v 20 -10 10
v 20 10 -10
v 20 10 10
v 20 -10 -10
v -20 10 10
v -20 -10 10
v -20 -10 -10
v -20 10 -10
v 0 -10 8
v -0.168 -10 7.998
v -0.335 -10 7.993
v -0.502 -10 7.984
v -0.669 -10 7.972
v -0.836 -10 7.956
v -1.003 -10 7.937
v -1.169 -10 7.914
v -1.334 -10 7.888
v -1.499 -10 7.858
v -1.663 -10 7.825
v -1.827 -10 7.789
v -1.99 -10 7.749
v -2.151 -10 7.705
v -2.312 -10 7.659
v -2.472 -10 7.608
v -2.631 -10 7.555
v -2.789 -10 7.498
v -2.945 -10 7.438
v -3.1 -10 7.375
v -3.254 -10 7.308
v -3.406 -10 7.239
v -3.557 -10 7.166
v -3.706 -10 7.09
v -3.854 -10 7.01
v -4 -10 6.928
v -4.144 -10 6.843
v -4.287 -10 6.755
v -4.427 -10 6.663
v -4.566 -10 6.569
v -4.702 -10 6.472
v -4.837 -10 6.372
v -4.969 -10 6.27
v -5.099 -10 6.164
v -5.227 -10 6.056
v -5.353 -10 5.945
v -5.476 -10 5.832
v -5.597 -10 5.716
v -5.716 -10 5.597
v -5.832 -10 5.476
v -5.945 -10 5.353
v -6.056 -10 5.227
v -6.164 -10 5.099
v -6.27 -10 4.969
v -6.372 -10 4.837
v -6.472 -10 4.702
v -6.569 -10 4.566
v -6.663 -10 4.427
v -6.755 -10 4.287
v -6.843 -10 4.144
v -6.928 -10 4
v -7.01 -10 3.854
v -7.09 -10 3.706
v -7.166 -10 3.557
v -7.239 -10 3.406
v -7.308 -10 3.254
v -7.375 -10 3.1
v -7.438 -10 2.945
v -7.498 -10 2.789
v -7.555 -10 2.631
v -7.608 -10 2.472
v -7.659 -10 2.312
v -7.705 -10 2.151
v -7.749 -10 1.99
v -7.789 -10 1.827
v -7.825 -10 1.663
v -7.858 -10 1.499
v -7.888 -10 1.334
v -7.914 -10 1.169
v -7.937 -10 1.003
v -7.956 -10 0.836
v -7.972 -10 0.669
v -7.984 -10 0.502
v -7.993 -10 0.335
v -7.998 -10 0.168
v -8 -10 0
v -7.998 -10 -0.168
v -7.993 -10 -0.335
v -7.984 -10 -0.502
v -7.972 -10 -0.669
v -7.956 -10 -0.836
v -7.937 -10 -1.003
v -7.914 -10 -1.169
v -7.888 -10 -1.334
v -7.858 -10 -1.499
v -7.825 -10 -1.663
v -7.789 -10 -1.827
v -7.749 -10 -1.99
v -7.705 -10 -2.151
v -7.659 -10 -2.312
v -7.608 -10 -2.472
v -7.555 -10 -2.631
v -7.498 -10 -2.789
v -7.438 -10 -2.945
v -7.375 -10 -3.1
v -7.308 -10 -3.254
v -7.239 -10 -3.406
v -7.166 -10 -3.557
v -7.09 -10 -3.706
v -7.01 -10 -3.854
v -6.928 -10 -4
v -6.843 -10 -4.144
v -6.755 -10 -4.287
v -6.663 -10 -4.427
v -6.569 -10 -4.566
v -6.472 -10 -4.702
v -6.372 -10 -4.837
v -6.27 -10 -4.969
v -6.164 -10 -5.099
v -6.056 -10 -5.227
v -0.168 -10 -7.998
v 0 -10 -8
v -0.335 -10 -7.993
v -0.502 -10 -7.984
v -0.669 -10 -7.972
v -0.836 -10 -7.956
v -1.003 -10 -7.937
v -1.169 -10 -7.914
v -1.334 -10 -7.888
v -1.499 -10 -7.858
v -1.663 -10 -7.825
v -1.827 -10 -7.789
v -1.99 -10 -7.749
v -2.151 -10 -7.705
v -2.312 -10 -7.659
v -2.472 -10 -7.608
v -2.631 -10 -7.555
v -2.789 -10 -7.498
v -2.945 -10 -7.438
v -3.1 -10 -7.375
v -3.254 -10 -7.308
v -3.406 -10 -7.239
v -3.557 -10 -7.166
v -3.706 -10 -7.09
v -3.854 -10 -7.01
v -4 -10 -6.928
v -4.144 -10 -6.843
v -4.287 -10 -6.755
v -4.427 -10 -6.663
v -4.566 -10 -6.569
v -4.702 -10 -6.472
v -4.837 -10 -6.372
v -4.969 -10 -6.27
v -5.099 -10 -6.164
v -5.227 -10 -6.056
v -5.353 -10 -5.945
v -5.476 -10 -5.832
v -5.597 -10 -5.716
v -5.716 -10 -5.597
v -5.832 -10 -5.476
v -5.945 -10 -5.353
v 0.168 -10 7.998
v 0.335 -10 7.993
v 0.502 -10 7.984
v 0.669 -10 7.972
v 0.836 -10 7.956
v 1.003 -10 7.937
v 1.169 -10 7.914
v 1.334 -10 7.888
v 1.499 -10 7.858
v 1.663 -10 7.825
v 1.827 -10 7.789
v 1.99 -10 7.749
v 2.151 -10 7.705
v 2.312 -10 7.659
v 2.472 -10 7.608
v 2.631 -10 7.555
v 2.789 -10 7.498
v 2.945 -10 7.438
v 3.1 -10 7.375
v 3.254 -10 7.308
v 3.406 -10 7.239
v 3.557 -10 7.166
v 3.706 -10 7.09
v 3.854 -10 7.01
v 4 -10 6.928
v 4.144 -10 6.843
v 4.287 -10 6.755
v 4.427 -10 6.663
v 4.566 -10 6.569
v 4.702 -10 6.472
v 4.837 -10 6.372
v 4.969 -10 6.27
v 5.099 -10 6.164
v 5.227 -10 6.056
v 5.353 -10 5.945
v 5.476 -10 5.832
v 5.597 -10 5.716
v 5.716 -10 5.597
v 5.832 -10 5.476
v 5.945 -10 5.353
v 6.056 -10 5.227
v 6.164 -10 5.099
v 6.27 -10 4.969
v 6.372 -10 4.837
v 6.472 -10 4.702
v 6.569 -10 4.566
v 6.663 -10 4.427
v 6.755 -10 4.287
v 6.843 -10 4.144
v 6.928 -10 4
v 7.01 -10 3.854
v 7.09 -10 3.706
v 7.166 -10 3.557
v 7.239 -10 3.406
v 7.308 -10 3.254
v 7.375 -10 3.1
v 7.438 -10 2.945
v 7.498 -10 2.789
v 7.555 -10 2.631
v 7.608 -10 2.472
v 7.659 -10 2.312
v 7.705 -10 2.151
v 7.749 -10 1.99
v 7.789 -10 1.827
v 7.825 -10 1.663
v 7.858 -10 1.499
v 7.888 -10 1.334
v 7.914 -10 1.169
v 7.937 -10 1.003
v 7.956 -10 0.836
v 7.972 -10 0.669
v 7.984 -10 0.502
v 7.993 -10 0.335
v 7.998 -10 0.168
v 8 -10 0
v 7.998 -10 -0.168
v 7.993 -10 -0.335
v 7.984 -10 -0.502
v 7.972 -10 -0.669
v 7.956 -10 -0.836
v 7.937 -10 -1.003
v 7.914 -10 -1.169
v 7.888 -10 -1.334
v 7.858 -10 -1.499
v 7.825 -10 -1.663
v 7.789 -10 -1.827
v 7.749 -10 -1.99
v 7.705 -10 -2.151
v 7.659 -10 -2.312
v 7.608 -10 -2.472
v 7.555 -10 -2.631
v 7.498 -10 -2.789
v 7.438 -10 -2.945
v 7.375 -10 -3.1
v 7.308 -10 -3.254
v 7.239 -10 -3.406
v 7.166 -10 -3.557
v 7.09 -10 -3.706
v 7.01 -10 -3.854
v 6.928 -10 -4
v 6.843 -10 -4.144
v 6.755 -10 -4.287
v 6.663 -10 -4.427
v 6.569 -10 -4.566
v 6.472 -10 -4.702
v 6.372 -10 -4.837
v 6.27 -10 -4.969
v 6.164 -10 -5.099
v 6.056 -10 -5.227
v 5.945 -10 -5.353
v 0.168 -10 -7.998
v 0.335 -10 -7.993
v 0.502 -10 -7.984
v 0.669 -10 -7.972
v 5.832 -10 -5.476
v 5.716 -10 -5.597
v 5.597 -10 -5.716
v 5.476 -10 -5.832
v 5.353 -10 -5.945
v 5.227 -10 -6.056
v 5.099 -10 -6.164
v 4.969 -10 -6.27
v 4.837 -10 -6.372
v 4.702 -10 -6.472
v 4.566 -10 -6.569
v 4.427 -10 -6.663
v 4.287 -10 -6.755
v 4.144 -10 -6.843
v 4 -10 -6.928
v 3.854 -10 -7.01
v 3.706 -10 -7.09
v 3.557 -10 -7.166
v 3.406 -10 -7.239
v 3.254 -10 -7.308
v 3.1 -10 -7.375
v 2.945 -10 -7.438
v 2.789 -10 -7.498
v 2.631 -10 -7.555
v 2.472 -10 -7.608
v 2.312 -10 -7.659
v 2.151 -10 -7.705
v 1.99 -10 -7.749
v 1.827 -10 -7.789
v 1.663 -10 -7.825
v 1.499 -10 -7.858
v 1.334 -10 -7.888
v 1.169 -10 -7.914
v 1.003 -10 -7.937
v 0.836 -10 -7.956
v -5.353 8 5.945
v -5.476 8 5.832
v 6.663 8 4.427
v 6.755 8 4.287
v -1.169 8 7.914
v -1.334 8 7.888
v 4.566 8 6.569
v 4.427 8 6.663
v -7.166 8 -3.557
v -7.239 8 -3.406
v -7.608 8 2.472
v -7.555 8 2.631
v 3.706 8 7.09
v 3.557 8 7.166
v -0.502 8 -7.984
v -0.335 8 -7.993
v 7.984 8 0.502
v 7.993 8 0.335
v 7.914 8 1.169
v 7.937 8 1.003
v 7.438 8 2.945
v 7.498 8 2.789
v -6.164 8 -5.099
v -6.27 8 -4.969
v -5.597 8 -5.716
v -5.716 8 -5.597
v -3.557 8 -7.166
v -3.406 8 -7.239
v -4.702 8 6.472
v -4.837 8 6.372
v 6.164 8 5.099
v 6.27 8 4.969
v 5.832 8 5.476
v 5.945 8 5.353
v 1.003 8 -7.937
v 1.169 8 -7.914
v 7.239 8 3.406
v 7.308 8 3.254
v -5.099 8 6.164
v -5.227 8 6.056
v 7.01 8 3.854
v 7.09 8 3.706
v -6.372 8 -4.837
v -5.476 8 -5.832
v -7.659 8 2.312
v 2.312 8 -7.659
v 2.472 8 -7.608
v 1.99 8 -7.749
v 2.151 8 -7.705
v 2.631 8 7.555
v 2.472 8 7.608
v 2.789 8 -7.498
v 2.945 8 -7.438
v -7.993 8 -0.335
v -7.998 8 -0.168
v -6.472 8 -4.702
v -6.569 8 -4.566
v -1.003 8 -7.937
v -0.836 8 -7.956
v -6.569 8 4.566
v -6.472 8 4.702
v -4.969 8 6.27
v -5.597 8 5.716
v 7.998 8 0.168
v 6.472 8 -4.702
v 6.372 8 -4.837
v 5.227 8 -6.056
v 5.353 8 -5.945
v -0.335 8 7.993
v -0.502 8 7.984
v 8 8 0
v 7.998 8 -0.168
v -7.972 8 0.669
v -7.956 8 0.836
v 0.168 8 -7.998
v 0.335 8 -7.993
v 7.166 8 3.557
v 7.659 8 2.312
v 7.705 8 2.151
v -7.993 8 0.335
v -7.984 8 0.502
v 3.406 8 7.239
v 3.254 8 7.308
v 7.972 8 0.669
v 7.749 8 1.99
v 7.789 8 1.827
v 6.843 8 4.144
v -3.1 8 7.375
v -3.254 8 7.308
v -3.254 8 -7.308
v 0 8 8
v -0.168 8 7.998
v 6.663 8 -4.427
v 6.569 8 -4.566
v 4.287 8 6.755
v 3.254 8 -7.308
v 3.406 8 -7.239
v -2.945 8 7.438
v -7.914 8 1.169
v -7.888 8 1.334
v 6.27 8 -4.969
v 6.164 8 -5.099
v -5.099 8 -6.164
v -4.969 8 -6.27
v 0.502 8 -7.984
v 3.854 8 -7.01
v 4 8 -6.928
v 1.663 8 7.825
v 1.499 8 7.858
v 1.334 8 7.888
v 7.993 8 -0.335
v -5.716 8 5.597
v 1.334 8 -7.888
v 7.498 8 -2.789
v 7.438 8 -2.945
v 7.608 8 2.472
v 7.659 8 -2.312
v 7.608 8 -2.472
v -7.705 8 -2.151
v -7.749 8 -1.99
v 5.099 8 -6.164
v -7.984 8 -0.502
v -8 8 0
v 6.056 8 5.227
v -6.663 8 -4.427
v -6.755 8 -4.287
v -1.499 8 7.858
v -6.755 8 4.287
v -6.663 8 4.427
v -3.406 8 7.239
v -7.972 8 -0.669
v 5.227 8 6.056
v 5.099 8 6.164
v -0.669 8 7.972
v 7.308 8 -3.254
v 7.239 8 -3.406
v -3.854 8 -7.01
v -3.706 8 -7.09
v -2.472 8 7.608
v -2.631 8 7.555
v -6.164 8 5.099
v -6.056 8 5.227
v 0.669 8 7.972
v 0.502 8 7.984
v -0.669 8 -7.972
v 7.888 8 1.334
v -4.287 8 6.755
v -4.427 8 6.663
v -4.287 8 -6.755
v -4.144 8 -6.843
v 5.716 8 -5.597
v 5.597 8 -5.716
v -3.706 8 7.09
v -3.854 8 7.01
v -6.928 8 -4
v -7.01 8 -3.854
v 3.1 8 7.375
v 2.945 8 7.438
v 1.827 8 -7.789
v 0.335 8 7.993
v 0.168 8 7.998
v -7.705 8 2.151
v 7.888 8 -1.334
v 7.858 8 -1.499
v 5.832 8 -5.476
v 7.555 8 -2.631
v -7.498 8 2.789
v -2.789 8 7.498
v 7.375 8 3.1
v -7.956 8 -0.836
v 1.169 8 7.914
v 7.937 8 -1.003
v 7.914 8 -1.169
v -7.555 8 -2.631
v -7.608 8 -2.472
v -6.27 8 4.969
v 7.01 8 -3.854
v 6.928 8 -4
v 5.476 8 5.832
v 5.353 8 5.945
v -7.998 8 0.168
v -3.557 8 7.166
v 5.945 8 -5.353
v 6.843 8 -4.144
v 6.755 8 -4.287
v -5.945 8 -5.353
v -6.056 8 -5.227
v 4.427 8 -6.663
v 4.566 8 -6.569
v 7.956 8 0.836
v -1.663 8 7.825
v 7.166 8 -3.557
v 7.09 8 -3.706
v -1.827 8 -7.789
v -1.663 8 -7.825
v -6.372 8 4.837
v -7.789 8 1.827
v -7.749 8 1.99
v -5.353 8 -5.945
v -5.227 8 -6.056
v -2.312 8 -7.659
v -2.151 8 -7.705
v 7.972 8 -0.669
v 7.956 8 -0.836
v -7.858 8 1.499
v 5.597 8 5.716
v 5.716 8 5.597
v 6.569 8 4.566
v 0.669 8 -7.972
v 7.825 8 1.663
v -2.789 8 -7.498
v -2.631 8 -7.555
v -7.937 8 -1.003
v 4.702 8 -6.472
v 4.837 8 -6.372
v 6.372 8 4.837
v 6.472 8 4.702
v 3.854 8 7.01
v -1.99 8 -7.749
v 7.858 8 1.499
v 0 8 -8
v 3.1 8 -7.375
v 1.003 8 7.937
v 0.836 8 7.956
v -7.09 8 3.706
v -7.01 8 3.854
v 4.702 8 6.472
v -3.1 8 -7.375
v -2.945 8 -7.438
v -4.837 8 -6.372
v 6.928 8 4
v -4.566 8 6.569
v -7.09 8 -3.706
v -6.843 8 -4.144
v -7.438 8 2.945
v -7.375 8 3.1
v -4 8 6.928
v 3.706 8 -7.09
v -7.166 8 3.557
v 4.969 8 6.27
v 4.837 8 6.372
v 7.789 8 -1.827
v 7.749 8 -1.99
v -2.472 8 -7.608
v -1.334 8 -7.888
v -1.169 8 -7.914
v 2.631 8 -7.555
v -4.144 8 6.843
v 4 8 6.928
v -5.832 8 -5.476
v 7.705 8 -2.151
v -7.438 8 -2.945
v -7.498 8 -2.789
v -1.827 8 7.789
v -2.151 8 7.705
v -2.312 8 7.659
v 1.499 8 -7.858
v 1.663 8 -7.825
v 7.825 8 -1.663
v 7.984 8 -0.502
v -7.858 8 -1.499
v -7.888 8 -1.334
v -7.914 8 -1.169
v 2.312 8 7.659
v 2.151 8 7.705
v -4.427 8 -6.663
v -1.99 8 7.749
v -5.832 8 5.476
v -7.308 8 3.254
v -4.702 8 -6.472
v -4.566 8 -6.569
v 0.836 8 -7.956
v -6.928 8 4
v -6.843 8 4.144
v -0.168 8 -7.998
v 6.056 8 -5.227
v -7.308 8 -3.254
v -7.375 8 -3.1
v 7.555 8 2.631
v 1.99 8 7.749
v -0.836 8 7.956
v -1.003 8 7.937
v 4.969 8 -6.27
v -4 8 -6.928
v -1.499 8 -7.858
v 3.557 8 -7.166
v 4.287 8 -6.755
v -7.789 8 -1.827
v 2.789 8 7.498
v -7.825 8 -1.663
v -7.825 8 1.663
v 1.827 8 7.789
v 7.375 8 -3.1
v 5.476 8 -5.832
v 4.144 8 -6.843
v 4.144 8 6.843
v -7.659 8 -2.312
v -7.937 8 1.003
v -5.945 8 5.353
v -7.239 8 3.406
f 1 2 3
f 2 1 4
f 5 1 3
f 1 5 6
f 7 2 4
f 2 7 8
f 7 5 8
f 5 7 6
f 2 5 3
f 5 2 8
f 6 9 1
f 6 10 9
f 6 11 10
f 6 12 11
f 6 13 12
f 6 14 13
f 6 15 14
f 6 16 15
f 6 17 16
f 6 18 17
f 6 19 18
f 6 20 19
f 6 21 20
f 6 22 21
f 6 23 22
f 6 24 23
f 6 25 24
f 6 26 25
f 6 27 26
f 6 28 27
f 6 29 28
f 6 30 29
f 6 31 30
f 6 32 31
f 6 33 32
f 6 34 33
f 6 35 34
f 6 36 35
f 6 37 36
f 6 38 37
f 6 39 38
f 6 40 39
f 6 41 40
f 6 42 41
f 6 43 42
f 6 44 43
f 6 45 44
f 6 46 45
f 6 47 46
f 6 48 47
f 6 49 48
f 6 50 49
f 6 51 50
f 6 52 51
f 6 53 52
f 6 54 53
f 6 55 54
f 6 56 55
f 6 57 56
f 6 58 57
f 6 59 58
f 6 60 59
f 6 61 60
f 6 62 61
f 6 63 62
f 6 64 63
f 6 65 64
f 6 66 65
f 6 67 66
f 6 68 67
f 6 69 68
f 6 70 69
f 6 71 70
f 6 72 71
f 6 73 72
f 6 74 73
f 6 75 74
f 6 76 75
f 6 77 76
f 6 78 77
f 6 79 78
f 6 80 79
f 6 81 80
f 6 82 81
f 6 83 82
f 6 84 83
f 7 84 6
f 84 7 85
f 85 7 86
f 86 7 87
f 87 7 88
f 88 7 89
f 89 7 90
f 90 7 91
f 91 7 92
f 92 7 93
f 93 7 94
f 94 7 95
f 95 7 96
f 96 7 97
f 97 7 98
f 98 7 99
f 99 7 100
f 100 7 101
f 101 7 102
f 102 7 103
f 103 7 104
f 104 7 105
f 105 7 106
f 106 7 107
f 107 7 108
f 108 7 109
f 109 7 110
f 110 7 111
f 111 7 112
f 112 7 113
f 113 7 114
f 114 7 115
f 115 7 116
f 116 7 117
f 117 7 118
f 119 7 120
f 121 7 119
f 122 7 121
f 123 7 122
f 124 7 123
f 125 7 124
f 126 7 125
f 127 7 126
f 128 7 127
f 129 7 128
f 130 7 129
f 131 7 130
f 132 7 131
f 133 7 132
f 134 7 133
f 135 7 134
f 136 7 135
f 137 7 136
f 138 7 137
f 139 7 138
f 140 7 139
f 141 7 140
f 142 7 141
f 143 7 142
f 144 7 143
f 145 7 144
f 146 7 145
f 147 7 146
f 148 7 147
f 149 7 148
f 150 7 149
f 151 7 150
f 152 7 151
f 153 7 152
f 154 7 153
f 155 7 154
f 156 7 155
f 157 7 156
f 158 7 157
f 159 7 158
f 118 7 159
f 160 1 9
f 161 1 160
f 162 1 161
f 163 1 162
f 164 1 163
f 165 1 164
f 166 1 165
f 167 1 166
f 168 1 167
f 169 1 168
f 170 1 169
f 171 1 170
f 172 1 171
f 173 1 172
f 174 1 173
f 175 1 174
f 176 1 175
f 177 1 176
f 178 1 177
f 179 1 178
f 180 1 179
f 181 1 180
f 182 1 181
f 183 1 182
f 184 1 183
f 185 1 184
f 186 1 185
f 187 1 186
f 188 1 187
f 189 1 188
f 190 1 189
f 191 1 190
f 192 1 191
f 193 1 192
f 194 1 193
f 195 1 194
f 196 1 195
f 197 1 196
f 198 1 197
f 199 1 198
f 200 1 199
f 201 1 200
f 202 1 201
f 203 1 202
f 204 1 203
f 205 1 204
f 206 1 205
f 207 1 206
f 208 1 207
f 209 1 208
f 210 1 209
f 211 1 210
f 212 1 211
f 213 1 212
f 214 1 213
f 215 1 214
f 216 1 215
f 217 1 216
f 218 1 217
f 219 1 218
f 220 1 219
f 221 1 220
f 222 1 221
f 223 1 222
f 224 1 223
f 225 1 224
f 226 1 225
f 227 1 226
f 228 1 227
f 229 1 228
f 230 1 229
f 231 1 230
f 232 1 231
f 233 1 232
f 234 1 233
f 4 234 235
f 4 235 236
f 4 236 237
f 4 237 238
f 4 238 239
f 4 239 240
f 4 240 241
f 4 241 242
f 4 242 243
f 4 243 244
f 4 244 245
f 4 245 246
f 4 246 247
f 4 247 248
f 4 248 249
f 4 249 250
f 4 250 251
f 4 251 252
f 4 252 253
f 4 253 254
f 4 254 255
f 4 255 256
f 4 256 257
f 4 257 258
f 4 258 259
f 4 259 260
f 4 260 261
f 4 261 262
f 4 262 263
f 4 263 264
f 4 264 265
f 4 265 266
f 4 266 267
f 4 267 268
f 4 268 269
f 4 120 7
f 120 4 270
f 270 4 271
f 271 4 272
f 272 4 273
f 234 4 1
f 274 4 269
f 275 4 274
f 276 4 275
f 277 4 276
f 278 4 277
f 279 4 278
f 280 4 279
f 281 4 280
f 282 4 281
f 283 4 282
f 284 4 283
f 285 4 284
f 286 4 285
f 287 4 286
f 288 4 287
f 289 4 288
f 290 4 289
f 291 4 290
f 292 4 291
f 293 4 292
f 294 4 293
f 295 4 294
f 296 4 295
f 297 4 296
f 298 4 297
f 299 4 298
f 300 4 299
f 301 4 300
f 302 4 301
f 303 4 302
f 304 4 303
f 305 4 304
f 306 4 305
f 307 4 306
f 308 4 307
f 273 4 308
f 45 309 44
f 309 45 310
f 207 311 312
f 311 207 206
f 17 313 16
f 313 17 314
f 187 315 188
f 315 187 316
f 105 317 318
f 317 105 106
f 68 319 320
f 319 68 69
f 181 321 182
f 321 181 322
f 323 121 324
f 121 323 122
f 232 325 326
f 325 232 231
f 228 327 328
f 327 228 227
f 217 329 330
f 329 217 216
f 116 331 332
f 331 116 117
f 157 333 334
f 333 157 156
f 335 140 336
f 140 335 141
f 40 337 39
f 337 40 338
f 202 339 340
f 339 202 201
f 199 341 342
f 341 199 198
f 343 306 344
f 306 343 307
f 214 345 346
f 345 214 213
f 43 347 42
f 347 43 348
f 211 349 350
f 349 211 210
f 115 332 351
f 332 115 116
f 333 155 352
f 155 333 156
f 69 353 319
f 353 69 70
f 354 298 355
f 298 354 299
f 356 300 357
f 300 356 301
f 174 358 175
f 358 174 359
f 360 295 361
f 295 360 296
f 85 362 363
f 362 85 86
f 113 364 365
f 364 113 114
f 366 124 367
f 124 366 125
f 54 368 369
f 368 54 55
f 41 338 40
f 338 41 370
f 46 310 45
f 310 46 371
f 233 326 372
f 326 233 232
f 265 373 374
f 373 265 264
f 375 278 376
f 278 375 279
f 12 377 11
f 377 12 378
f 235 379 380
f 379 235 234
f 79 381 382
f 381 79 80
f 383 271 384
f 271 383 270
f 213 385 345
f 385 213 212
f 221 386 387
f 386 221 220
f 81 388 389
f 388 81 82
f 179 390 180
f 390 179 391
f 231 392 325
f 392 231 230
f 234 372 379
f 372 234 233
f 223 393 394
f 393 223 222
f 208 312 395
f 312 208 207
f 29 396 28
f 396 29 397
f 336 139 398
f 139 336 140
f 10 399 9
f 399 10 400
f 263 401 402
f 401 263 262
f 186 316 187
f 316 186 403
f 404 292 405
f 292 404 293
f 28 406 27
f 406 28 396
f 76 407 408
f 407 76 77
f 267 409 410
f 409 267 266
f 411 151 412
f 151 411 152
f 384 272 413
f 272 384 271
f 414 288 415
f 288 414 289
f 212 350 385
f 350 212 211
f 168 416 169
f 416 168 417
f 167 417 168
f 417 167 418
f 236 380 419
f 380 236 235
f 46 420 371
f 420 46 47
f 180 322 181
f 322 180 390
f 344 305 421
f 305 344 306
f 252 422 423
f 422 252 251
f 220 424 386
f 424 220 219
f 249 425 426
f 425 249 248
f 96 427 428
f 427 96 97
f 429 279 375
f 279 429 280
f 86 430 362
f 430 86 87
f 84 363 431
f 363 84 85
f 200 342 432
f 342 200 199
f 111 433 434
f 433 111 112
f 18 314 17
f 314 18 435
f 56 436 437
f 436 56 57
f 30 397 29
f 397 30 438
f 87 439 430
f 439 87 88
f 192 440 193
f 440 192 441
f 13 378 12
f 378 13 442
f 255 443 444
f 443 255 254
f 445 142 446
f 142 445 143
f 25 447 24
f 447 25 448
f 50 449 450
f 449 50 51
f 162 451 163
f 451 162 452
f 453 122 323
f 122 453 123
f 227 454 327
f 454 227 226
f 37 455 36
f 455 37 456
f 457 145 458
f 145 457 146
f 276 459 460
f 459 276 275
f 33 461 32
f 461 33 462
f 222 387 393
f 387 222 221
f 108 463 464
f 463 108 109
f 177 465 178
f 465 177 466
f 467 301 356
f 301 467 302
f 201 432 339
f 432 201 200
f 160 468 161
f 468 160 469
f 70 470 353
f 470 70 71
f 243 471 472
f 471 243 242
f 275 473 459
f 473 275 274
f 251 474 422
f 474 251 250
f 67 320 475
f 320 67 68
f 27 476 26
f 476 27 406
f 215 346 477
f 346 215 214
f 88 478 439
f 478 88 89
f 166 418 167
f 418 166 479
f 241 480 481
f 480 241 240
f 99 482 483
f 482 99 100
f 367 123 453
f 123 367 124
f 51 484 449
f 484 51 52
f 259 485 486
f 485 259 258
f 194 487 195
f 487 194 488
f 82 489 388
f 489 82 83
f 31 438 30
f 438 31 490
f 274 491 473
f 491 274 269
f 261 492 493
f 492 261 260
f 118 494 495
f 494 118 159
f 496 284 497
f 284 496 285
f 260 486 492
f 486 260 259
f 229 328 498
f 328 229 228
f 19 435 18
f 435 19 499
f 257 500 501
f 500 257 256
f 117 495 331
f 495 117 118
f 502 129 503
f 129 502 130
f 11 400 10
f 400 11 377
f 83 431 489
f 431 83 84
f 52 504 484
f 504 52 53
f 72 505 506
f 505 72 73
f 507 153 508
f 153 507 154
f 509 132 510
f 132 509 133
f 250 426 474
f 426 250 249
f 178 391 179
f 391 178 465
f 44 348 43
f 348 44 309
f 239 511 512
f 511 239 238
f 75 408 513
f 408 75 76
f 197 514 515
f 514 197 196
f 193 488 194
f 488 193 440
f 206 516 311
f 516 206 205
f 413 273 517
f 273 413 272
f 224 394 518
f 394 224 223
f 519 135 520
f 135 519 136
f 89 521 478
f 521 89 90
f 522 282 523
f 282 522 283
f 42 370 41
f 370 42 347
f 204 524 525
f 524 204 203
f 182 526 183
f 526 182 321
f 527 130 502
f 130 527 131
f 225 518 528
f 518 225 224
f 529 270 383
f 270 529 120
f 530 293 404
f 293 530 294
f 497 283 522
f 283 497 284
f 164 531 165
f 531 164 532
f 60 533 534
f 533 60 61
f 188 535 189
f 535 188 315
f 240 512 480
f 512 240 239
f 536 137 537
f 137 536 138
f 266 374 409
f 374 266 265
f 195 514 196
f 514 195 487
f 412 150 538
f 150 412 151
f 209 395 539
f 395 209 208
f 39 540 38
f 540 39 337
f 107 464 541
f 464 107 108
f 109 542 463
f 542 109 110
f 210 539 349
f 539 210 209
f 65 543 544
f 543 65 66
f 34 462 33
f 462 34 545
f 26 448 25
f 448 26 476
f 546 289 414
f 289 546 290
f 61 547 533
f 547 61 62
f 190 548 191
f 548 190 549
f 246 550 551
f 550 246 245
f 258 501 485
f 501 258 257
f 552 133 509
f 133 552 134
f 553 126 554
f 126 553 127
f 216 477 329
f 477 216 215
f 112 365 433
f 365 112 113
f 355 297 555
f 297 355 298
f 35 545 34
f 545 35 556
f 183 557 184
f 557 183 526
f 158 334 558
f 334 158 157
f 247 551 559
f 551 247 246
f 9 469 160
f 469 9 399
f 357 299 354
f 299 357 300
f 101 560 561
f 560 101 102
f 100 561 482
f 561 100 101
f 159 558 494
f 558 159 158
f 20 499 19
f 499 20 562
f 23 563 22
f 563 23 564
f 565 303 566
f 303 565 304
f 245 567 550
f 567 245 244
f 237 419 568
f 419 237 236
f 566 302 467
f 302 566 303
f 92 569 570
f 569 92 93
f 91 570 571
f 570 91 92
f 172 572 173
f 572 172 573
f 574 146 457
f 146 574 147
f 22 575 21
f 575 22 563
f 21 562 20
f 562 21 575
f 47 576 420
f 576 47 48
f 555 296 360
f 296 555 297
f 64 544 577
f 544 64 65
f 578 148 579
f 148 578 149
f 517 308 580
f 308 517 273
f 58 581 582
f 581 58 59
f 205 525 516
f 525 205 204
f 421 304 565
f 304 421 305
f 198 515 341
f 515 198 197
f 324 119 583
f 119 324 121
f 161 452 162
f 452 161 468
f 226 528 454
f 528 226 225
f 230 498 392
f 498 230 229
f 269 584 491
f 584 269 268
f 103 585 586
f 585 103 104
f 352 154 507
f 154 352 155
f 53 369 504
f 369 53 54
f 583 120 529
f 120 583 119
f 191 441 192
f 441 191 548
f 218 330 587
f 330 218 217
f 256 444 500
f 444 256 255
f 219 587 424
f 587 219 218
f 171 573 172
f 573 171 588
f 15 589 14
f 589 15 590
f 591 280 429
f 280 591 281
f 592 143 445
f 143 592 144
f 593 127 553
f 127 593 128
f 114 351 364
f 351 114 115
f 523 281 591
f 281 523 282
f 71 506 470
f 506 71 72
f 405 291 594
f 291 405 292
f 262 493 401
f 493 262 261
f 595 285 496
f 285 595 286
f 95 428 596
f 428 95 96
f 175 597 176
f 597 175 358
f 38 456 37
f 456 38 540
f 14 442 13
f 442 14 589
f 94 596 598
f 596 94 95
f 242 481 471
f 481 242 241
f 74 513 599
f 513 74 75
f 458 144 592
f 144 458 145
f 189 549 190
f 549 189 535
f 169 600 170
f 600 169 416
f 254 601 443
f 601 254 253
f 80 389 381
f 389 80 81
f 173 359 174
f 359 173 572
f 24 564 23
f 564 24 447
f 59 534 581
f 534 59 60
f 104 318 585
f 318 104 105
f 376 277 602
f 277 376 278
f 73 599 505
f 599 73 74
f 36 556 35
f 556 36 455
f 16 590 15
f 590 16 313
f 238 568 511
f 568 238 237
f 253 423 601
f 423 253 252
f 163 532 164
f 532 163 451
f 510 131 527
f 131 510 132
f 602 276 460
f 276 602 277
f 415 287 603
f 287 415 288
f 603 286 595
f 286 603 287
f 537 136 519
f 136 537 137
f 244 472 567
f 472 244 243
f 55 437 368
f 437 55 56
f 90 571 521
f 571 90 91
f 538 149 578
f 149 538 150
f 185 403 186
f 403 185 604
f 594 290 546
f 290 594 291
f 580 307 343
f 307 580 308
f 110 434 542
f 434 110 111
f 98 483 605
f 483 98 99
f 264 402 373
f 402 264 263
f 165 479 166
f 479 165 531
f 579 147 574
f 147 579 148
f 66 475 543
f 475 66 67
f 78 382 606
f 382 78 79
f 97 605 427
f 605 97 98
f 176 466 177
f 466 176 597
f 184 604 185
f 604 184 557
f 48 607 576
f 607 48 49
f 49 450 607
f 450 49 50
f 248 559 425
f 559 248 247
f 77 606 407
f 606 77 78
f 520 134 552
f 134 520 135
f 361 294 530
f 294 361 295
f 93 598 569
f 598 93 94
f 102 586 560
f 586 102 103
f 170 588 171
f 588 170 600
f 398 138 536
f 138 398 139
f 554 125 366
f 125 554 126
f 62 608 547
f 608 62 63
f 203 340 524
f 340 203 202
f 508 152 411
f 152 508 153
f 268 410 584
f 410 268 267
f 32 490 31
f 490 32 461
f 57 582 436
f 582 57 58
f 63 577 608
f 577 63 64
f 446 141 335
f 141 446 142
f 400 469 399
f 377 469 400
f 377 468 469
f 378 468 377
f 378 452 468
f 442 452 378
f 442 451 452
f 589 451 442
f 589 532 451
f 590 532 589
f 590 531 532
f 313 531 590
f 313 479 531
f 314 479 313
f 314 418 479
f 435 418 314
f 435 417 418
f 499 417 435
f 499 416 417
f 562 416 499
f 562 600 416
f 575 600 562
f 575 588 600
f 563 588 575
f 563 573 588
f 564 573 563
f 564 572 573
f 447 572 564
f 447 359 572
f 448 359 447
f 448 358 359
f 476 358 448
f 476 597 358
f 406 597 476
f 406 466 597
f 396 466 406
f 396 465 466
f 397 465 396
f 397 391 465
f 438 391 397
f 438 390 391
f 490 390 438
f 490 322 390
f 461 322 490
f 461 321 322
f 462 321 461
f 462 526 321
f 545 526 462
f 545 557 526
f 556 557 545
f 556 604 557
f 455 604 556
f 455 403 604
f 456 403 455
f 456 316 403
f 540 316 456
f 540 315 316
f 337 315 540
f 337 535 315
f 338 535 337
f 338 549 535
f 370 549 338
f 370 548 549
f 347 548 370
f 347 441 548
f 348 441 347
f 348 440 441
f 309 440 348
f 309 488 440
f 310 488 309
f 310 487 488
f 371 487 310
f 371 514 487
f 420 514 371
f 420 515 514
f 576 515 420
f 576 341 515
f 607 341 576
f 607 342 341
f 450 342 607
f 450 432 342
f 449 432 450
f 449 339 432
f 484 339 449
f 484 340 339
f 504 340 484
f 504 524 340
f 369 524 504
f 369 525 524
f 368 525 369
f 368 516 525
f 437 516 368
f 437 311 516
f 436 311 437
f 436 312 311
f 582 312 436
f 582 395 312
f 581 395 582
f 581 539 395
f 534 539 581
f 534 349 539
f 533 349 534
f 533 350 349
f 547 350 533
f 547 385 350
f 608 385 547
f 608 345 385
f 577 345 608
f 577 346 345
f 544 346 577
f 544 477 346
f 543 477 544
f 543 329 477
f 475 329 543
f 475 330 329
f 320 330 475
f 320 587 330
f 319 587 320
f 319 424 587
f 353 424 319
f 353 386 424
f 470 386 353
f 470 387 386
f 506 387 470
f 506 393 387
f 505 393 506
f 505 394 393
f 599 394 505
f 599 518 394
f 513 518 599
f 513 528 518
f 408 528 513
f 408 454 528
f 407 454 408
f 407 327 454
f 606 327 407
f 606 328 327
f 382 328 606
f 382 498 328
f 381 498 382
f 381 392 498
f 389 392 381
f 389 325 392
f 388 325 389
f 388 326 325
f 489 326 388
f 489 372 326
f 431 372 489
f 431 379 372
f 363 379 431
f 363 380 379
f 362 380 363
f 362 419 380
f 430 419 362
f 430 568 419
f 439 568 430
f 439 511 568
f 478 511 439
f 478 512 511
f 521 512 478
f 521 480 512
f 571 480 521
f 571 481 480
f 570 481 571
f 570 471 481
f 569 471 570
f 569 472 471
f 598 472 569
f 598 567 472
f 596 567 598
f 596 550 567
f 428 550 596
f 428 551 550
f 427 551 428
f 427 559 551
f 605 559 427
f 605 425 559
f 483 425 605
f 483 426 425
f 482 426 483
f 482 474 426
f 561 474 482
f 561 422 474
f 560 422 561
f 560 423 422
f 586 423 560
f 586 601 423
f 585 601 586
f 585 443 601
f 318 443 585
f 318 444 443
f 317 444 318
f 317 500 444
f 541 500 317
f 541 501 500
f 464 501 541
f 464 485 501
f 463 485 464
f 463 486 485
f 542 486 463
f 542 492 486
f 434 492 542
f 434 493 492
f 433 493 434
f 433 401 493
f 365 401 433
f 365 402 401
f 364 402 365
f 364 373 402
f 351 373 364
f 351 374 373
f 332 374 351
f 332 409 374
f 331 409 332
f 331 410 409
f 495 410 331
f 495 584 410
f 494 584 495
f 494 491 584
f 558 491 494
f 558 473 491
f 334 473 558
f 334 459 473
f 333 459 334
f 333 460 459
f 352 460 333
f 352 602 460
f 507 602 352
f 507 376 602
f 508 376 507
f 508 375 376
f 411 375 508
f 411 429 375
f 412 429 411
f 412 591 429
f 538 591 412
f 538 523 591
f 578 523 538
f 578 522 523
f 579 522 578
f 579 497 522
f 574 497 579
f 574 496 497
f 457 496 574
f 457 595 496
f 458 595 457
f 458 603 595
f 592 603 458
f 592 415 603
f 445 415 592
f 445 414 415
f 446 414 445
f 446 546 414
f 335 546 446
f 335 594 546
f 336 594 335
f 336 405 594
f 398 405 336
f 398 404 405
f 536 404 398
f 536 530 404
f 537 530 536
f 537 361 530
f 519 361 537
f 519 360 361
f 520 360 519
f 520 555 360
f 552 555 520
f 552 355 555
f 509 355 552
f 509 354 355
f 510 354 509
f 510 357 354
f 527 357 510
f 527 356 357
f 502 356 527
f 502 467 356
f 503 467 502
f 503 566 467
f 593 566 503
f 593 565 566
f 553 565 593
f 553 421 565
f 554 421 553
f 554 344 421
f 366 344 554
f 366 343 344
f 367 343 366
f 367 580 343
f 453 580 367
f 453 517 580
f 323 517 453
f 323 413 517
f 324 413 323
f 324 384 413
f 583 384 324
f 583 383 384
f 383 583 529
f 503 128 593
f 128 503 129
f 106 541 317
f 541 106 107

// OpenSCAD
// file: dimensions.scad
capsule_length = 37.5;
capsule_dia = 12.5; // 13 - 0.5

capsule_flat_y=1.5;
reed_length=14;
// actually reed_dia = 2;
reed_dia = 3.2;


outer_stud_width = 2;
middle_stud_width = 2;

connector_x=6;
connector_y=2;
connector_gap_mill_z = 4;
mating_tolerance = 0.1;


tube_inner_dia = 13;
tube_outer_dia = 16;

magnet2_innerdia = 20;
magnet2_outerdia = 25;
magnet2_length = 10;
// main file
$fn = 300;
include <dimensions.scad>;

tube_envelope=2;
stand_dia = 40;
stand_axis=20;
stand_thickness = tube_outer_dia+tube_envelope*2;
module standedge()
{
    difference()
    {
        cube([stand_dia,stand_axis, stand_thickness], center=true);

        translate([0,stand_axis/2-tube_envelope, 0])
        rotate([90,0,0])
        cylinder(d=tube_outer_dia, 40);
    }
}

standedge();
